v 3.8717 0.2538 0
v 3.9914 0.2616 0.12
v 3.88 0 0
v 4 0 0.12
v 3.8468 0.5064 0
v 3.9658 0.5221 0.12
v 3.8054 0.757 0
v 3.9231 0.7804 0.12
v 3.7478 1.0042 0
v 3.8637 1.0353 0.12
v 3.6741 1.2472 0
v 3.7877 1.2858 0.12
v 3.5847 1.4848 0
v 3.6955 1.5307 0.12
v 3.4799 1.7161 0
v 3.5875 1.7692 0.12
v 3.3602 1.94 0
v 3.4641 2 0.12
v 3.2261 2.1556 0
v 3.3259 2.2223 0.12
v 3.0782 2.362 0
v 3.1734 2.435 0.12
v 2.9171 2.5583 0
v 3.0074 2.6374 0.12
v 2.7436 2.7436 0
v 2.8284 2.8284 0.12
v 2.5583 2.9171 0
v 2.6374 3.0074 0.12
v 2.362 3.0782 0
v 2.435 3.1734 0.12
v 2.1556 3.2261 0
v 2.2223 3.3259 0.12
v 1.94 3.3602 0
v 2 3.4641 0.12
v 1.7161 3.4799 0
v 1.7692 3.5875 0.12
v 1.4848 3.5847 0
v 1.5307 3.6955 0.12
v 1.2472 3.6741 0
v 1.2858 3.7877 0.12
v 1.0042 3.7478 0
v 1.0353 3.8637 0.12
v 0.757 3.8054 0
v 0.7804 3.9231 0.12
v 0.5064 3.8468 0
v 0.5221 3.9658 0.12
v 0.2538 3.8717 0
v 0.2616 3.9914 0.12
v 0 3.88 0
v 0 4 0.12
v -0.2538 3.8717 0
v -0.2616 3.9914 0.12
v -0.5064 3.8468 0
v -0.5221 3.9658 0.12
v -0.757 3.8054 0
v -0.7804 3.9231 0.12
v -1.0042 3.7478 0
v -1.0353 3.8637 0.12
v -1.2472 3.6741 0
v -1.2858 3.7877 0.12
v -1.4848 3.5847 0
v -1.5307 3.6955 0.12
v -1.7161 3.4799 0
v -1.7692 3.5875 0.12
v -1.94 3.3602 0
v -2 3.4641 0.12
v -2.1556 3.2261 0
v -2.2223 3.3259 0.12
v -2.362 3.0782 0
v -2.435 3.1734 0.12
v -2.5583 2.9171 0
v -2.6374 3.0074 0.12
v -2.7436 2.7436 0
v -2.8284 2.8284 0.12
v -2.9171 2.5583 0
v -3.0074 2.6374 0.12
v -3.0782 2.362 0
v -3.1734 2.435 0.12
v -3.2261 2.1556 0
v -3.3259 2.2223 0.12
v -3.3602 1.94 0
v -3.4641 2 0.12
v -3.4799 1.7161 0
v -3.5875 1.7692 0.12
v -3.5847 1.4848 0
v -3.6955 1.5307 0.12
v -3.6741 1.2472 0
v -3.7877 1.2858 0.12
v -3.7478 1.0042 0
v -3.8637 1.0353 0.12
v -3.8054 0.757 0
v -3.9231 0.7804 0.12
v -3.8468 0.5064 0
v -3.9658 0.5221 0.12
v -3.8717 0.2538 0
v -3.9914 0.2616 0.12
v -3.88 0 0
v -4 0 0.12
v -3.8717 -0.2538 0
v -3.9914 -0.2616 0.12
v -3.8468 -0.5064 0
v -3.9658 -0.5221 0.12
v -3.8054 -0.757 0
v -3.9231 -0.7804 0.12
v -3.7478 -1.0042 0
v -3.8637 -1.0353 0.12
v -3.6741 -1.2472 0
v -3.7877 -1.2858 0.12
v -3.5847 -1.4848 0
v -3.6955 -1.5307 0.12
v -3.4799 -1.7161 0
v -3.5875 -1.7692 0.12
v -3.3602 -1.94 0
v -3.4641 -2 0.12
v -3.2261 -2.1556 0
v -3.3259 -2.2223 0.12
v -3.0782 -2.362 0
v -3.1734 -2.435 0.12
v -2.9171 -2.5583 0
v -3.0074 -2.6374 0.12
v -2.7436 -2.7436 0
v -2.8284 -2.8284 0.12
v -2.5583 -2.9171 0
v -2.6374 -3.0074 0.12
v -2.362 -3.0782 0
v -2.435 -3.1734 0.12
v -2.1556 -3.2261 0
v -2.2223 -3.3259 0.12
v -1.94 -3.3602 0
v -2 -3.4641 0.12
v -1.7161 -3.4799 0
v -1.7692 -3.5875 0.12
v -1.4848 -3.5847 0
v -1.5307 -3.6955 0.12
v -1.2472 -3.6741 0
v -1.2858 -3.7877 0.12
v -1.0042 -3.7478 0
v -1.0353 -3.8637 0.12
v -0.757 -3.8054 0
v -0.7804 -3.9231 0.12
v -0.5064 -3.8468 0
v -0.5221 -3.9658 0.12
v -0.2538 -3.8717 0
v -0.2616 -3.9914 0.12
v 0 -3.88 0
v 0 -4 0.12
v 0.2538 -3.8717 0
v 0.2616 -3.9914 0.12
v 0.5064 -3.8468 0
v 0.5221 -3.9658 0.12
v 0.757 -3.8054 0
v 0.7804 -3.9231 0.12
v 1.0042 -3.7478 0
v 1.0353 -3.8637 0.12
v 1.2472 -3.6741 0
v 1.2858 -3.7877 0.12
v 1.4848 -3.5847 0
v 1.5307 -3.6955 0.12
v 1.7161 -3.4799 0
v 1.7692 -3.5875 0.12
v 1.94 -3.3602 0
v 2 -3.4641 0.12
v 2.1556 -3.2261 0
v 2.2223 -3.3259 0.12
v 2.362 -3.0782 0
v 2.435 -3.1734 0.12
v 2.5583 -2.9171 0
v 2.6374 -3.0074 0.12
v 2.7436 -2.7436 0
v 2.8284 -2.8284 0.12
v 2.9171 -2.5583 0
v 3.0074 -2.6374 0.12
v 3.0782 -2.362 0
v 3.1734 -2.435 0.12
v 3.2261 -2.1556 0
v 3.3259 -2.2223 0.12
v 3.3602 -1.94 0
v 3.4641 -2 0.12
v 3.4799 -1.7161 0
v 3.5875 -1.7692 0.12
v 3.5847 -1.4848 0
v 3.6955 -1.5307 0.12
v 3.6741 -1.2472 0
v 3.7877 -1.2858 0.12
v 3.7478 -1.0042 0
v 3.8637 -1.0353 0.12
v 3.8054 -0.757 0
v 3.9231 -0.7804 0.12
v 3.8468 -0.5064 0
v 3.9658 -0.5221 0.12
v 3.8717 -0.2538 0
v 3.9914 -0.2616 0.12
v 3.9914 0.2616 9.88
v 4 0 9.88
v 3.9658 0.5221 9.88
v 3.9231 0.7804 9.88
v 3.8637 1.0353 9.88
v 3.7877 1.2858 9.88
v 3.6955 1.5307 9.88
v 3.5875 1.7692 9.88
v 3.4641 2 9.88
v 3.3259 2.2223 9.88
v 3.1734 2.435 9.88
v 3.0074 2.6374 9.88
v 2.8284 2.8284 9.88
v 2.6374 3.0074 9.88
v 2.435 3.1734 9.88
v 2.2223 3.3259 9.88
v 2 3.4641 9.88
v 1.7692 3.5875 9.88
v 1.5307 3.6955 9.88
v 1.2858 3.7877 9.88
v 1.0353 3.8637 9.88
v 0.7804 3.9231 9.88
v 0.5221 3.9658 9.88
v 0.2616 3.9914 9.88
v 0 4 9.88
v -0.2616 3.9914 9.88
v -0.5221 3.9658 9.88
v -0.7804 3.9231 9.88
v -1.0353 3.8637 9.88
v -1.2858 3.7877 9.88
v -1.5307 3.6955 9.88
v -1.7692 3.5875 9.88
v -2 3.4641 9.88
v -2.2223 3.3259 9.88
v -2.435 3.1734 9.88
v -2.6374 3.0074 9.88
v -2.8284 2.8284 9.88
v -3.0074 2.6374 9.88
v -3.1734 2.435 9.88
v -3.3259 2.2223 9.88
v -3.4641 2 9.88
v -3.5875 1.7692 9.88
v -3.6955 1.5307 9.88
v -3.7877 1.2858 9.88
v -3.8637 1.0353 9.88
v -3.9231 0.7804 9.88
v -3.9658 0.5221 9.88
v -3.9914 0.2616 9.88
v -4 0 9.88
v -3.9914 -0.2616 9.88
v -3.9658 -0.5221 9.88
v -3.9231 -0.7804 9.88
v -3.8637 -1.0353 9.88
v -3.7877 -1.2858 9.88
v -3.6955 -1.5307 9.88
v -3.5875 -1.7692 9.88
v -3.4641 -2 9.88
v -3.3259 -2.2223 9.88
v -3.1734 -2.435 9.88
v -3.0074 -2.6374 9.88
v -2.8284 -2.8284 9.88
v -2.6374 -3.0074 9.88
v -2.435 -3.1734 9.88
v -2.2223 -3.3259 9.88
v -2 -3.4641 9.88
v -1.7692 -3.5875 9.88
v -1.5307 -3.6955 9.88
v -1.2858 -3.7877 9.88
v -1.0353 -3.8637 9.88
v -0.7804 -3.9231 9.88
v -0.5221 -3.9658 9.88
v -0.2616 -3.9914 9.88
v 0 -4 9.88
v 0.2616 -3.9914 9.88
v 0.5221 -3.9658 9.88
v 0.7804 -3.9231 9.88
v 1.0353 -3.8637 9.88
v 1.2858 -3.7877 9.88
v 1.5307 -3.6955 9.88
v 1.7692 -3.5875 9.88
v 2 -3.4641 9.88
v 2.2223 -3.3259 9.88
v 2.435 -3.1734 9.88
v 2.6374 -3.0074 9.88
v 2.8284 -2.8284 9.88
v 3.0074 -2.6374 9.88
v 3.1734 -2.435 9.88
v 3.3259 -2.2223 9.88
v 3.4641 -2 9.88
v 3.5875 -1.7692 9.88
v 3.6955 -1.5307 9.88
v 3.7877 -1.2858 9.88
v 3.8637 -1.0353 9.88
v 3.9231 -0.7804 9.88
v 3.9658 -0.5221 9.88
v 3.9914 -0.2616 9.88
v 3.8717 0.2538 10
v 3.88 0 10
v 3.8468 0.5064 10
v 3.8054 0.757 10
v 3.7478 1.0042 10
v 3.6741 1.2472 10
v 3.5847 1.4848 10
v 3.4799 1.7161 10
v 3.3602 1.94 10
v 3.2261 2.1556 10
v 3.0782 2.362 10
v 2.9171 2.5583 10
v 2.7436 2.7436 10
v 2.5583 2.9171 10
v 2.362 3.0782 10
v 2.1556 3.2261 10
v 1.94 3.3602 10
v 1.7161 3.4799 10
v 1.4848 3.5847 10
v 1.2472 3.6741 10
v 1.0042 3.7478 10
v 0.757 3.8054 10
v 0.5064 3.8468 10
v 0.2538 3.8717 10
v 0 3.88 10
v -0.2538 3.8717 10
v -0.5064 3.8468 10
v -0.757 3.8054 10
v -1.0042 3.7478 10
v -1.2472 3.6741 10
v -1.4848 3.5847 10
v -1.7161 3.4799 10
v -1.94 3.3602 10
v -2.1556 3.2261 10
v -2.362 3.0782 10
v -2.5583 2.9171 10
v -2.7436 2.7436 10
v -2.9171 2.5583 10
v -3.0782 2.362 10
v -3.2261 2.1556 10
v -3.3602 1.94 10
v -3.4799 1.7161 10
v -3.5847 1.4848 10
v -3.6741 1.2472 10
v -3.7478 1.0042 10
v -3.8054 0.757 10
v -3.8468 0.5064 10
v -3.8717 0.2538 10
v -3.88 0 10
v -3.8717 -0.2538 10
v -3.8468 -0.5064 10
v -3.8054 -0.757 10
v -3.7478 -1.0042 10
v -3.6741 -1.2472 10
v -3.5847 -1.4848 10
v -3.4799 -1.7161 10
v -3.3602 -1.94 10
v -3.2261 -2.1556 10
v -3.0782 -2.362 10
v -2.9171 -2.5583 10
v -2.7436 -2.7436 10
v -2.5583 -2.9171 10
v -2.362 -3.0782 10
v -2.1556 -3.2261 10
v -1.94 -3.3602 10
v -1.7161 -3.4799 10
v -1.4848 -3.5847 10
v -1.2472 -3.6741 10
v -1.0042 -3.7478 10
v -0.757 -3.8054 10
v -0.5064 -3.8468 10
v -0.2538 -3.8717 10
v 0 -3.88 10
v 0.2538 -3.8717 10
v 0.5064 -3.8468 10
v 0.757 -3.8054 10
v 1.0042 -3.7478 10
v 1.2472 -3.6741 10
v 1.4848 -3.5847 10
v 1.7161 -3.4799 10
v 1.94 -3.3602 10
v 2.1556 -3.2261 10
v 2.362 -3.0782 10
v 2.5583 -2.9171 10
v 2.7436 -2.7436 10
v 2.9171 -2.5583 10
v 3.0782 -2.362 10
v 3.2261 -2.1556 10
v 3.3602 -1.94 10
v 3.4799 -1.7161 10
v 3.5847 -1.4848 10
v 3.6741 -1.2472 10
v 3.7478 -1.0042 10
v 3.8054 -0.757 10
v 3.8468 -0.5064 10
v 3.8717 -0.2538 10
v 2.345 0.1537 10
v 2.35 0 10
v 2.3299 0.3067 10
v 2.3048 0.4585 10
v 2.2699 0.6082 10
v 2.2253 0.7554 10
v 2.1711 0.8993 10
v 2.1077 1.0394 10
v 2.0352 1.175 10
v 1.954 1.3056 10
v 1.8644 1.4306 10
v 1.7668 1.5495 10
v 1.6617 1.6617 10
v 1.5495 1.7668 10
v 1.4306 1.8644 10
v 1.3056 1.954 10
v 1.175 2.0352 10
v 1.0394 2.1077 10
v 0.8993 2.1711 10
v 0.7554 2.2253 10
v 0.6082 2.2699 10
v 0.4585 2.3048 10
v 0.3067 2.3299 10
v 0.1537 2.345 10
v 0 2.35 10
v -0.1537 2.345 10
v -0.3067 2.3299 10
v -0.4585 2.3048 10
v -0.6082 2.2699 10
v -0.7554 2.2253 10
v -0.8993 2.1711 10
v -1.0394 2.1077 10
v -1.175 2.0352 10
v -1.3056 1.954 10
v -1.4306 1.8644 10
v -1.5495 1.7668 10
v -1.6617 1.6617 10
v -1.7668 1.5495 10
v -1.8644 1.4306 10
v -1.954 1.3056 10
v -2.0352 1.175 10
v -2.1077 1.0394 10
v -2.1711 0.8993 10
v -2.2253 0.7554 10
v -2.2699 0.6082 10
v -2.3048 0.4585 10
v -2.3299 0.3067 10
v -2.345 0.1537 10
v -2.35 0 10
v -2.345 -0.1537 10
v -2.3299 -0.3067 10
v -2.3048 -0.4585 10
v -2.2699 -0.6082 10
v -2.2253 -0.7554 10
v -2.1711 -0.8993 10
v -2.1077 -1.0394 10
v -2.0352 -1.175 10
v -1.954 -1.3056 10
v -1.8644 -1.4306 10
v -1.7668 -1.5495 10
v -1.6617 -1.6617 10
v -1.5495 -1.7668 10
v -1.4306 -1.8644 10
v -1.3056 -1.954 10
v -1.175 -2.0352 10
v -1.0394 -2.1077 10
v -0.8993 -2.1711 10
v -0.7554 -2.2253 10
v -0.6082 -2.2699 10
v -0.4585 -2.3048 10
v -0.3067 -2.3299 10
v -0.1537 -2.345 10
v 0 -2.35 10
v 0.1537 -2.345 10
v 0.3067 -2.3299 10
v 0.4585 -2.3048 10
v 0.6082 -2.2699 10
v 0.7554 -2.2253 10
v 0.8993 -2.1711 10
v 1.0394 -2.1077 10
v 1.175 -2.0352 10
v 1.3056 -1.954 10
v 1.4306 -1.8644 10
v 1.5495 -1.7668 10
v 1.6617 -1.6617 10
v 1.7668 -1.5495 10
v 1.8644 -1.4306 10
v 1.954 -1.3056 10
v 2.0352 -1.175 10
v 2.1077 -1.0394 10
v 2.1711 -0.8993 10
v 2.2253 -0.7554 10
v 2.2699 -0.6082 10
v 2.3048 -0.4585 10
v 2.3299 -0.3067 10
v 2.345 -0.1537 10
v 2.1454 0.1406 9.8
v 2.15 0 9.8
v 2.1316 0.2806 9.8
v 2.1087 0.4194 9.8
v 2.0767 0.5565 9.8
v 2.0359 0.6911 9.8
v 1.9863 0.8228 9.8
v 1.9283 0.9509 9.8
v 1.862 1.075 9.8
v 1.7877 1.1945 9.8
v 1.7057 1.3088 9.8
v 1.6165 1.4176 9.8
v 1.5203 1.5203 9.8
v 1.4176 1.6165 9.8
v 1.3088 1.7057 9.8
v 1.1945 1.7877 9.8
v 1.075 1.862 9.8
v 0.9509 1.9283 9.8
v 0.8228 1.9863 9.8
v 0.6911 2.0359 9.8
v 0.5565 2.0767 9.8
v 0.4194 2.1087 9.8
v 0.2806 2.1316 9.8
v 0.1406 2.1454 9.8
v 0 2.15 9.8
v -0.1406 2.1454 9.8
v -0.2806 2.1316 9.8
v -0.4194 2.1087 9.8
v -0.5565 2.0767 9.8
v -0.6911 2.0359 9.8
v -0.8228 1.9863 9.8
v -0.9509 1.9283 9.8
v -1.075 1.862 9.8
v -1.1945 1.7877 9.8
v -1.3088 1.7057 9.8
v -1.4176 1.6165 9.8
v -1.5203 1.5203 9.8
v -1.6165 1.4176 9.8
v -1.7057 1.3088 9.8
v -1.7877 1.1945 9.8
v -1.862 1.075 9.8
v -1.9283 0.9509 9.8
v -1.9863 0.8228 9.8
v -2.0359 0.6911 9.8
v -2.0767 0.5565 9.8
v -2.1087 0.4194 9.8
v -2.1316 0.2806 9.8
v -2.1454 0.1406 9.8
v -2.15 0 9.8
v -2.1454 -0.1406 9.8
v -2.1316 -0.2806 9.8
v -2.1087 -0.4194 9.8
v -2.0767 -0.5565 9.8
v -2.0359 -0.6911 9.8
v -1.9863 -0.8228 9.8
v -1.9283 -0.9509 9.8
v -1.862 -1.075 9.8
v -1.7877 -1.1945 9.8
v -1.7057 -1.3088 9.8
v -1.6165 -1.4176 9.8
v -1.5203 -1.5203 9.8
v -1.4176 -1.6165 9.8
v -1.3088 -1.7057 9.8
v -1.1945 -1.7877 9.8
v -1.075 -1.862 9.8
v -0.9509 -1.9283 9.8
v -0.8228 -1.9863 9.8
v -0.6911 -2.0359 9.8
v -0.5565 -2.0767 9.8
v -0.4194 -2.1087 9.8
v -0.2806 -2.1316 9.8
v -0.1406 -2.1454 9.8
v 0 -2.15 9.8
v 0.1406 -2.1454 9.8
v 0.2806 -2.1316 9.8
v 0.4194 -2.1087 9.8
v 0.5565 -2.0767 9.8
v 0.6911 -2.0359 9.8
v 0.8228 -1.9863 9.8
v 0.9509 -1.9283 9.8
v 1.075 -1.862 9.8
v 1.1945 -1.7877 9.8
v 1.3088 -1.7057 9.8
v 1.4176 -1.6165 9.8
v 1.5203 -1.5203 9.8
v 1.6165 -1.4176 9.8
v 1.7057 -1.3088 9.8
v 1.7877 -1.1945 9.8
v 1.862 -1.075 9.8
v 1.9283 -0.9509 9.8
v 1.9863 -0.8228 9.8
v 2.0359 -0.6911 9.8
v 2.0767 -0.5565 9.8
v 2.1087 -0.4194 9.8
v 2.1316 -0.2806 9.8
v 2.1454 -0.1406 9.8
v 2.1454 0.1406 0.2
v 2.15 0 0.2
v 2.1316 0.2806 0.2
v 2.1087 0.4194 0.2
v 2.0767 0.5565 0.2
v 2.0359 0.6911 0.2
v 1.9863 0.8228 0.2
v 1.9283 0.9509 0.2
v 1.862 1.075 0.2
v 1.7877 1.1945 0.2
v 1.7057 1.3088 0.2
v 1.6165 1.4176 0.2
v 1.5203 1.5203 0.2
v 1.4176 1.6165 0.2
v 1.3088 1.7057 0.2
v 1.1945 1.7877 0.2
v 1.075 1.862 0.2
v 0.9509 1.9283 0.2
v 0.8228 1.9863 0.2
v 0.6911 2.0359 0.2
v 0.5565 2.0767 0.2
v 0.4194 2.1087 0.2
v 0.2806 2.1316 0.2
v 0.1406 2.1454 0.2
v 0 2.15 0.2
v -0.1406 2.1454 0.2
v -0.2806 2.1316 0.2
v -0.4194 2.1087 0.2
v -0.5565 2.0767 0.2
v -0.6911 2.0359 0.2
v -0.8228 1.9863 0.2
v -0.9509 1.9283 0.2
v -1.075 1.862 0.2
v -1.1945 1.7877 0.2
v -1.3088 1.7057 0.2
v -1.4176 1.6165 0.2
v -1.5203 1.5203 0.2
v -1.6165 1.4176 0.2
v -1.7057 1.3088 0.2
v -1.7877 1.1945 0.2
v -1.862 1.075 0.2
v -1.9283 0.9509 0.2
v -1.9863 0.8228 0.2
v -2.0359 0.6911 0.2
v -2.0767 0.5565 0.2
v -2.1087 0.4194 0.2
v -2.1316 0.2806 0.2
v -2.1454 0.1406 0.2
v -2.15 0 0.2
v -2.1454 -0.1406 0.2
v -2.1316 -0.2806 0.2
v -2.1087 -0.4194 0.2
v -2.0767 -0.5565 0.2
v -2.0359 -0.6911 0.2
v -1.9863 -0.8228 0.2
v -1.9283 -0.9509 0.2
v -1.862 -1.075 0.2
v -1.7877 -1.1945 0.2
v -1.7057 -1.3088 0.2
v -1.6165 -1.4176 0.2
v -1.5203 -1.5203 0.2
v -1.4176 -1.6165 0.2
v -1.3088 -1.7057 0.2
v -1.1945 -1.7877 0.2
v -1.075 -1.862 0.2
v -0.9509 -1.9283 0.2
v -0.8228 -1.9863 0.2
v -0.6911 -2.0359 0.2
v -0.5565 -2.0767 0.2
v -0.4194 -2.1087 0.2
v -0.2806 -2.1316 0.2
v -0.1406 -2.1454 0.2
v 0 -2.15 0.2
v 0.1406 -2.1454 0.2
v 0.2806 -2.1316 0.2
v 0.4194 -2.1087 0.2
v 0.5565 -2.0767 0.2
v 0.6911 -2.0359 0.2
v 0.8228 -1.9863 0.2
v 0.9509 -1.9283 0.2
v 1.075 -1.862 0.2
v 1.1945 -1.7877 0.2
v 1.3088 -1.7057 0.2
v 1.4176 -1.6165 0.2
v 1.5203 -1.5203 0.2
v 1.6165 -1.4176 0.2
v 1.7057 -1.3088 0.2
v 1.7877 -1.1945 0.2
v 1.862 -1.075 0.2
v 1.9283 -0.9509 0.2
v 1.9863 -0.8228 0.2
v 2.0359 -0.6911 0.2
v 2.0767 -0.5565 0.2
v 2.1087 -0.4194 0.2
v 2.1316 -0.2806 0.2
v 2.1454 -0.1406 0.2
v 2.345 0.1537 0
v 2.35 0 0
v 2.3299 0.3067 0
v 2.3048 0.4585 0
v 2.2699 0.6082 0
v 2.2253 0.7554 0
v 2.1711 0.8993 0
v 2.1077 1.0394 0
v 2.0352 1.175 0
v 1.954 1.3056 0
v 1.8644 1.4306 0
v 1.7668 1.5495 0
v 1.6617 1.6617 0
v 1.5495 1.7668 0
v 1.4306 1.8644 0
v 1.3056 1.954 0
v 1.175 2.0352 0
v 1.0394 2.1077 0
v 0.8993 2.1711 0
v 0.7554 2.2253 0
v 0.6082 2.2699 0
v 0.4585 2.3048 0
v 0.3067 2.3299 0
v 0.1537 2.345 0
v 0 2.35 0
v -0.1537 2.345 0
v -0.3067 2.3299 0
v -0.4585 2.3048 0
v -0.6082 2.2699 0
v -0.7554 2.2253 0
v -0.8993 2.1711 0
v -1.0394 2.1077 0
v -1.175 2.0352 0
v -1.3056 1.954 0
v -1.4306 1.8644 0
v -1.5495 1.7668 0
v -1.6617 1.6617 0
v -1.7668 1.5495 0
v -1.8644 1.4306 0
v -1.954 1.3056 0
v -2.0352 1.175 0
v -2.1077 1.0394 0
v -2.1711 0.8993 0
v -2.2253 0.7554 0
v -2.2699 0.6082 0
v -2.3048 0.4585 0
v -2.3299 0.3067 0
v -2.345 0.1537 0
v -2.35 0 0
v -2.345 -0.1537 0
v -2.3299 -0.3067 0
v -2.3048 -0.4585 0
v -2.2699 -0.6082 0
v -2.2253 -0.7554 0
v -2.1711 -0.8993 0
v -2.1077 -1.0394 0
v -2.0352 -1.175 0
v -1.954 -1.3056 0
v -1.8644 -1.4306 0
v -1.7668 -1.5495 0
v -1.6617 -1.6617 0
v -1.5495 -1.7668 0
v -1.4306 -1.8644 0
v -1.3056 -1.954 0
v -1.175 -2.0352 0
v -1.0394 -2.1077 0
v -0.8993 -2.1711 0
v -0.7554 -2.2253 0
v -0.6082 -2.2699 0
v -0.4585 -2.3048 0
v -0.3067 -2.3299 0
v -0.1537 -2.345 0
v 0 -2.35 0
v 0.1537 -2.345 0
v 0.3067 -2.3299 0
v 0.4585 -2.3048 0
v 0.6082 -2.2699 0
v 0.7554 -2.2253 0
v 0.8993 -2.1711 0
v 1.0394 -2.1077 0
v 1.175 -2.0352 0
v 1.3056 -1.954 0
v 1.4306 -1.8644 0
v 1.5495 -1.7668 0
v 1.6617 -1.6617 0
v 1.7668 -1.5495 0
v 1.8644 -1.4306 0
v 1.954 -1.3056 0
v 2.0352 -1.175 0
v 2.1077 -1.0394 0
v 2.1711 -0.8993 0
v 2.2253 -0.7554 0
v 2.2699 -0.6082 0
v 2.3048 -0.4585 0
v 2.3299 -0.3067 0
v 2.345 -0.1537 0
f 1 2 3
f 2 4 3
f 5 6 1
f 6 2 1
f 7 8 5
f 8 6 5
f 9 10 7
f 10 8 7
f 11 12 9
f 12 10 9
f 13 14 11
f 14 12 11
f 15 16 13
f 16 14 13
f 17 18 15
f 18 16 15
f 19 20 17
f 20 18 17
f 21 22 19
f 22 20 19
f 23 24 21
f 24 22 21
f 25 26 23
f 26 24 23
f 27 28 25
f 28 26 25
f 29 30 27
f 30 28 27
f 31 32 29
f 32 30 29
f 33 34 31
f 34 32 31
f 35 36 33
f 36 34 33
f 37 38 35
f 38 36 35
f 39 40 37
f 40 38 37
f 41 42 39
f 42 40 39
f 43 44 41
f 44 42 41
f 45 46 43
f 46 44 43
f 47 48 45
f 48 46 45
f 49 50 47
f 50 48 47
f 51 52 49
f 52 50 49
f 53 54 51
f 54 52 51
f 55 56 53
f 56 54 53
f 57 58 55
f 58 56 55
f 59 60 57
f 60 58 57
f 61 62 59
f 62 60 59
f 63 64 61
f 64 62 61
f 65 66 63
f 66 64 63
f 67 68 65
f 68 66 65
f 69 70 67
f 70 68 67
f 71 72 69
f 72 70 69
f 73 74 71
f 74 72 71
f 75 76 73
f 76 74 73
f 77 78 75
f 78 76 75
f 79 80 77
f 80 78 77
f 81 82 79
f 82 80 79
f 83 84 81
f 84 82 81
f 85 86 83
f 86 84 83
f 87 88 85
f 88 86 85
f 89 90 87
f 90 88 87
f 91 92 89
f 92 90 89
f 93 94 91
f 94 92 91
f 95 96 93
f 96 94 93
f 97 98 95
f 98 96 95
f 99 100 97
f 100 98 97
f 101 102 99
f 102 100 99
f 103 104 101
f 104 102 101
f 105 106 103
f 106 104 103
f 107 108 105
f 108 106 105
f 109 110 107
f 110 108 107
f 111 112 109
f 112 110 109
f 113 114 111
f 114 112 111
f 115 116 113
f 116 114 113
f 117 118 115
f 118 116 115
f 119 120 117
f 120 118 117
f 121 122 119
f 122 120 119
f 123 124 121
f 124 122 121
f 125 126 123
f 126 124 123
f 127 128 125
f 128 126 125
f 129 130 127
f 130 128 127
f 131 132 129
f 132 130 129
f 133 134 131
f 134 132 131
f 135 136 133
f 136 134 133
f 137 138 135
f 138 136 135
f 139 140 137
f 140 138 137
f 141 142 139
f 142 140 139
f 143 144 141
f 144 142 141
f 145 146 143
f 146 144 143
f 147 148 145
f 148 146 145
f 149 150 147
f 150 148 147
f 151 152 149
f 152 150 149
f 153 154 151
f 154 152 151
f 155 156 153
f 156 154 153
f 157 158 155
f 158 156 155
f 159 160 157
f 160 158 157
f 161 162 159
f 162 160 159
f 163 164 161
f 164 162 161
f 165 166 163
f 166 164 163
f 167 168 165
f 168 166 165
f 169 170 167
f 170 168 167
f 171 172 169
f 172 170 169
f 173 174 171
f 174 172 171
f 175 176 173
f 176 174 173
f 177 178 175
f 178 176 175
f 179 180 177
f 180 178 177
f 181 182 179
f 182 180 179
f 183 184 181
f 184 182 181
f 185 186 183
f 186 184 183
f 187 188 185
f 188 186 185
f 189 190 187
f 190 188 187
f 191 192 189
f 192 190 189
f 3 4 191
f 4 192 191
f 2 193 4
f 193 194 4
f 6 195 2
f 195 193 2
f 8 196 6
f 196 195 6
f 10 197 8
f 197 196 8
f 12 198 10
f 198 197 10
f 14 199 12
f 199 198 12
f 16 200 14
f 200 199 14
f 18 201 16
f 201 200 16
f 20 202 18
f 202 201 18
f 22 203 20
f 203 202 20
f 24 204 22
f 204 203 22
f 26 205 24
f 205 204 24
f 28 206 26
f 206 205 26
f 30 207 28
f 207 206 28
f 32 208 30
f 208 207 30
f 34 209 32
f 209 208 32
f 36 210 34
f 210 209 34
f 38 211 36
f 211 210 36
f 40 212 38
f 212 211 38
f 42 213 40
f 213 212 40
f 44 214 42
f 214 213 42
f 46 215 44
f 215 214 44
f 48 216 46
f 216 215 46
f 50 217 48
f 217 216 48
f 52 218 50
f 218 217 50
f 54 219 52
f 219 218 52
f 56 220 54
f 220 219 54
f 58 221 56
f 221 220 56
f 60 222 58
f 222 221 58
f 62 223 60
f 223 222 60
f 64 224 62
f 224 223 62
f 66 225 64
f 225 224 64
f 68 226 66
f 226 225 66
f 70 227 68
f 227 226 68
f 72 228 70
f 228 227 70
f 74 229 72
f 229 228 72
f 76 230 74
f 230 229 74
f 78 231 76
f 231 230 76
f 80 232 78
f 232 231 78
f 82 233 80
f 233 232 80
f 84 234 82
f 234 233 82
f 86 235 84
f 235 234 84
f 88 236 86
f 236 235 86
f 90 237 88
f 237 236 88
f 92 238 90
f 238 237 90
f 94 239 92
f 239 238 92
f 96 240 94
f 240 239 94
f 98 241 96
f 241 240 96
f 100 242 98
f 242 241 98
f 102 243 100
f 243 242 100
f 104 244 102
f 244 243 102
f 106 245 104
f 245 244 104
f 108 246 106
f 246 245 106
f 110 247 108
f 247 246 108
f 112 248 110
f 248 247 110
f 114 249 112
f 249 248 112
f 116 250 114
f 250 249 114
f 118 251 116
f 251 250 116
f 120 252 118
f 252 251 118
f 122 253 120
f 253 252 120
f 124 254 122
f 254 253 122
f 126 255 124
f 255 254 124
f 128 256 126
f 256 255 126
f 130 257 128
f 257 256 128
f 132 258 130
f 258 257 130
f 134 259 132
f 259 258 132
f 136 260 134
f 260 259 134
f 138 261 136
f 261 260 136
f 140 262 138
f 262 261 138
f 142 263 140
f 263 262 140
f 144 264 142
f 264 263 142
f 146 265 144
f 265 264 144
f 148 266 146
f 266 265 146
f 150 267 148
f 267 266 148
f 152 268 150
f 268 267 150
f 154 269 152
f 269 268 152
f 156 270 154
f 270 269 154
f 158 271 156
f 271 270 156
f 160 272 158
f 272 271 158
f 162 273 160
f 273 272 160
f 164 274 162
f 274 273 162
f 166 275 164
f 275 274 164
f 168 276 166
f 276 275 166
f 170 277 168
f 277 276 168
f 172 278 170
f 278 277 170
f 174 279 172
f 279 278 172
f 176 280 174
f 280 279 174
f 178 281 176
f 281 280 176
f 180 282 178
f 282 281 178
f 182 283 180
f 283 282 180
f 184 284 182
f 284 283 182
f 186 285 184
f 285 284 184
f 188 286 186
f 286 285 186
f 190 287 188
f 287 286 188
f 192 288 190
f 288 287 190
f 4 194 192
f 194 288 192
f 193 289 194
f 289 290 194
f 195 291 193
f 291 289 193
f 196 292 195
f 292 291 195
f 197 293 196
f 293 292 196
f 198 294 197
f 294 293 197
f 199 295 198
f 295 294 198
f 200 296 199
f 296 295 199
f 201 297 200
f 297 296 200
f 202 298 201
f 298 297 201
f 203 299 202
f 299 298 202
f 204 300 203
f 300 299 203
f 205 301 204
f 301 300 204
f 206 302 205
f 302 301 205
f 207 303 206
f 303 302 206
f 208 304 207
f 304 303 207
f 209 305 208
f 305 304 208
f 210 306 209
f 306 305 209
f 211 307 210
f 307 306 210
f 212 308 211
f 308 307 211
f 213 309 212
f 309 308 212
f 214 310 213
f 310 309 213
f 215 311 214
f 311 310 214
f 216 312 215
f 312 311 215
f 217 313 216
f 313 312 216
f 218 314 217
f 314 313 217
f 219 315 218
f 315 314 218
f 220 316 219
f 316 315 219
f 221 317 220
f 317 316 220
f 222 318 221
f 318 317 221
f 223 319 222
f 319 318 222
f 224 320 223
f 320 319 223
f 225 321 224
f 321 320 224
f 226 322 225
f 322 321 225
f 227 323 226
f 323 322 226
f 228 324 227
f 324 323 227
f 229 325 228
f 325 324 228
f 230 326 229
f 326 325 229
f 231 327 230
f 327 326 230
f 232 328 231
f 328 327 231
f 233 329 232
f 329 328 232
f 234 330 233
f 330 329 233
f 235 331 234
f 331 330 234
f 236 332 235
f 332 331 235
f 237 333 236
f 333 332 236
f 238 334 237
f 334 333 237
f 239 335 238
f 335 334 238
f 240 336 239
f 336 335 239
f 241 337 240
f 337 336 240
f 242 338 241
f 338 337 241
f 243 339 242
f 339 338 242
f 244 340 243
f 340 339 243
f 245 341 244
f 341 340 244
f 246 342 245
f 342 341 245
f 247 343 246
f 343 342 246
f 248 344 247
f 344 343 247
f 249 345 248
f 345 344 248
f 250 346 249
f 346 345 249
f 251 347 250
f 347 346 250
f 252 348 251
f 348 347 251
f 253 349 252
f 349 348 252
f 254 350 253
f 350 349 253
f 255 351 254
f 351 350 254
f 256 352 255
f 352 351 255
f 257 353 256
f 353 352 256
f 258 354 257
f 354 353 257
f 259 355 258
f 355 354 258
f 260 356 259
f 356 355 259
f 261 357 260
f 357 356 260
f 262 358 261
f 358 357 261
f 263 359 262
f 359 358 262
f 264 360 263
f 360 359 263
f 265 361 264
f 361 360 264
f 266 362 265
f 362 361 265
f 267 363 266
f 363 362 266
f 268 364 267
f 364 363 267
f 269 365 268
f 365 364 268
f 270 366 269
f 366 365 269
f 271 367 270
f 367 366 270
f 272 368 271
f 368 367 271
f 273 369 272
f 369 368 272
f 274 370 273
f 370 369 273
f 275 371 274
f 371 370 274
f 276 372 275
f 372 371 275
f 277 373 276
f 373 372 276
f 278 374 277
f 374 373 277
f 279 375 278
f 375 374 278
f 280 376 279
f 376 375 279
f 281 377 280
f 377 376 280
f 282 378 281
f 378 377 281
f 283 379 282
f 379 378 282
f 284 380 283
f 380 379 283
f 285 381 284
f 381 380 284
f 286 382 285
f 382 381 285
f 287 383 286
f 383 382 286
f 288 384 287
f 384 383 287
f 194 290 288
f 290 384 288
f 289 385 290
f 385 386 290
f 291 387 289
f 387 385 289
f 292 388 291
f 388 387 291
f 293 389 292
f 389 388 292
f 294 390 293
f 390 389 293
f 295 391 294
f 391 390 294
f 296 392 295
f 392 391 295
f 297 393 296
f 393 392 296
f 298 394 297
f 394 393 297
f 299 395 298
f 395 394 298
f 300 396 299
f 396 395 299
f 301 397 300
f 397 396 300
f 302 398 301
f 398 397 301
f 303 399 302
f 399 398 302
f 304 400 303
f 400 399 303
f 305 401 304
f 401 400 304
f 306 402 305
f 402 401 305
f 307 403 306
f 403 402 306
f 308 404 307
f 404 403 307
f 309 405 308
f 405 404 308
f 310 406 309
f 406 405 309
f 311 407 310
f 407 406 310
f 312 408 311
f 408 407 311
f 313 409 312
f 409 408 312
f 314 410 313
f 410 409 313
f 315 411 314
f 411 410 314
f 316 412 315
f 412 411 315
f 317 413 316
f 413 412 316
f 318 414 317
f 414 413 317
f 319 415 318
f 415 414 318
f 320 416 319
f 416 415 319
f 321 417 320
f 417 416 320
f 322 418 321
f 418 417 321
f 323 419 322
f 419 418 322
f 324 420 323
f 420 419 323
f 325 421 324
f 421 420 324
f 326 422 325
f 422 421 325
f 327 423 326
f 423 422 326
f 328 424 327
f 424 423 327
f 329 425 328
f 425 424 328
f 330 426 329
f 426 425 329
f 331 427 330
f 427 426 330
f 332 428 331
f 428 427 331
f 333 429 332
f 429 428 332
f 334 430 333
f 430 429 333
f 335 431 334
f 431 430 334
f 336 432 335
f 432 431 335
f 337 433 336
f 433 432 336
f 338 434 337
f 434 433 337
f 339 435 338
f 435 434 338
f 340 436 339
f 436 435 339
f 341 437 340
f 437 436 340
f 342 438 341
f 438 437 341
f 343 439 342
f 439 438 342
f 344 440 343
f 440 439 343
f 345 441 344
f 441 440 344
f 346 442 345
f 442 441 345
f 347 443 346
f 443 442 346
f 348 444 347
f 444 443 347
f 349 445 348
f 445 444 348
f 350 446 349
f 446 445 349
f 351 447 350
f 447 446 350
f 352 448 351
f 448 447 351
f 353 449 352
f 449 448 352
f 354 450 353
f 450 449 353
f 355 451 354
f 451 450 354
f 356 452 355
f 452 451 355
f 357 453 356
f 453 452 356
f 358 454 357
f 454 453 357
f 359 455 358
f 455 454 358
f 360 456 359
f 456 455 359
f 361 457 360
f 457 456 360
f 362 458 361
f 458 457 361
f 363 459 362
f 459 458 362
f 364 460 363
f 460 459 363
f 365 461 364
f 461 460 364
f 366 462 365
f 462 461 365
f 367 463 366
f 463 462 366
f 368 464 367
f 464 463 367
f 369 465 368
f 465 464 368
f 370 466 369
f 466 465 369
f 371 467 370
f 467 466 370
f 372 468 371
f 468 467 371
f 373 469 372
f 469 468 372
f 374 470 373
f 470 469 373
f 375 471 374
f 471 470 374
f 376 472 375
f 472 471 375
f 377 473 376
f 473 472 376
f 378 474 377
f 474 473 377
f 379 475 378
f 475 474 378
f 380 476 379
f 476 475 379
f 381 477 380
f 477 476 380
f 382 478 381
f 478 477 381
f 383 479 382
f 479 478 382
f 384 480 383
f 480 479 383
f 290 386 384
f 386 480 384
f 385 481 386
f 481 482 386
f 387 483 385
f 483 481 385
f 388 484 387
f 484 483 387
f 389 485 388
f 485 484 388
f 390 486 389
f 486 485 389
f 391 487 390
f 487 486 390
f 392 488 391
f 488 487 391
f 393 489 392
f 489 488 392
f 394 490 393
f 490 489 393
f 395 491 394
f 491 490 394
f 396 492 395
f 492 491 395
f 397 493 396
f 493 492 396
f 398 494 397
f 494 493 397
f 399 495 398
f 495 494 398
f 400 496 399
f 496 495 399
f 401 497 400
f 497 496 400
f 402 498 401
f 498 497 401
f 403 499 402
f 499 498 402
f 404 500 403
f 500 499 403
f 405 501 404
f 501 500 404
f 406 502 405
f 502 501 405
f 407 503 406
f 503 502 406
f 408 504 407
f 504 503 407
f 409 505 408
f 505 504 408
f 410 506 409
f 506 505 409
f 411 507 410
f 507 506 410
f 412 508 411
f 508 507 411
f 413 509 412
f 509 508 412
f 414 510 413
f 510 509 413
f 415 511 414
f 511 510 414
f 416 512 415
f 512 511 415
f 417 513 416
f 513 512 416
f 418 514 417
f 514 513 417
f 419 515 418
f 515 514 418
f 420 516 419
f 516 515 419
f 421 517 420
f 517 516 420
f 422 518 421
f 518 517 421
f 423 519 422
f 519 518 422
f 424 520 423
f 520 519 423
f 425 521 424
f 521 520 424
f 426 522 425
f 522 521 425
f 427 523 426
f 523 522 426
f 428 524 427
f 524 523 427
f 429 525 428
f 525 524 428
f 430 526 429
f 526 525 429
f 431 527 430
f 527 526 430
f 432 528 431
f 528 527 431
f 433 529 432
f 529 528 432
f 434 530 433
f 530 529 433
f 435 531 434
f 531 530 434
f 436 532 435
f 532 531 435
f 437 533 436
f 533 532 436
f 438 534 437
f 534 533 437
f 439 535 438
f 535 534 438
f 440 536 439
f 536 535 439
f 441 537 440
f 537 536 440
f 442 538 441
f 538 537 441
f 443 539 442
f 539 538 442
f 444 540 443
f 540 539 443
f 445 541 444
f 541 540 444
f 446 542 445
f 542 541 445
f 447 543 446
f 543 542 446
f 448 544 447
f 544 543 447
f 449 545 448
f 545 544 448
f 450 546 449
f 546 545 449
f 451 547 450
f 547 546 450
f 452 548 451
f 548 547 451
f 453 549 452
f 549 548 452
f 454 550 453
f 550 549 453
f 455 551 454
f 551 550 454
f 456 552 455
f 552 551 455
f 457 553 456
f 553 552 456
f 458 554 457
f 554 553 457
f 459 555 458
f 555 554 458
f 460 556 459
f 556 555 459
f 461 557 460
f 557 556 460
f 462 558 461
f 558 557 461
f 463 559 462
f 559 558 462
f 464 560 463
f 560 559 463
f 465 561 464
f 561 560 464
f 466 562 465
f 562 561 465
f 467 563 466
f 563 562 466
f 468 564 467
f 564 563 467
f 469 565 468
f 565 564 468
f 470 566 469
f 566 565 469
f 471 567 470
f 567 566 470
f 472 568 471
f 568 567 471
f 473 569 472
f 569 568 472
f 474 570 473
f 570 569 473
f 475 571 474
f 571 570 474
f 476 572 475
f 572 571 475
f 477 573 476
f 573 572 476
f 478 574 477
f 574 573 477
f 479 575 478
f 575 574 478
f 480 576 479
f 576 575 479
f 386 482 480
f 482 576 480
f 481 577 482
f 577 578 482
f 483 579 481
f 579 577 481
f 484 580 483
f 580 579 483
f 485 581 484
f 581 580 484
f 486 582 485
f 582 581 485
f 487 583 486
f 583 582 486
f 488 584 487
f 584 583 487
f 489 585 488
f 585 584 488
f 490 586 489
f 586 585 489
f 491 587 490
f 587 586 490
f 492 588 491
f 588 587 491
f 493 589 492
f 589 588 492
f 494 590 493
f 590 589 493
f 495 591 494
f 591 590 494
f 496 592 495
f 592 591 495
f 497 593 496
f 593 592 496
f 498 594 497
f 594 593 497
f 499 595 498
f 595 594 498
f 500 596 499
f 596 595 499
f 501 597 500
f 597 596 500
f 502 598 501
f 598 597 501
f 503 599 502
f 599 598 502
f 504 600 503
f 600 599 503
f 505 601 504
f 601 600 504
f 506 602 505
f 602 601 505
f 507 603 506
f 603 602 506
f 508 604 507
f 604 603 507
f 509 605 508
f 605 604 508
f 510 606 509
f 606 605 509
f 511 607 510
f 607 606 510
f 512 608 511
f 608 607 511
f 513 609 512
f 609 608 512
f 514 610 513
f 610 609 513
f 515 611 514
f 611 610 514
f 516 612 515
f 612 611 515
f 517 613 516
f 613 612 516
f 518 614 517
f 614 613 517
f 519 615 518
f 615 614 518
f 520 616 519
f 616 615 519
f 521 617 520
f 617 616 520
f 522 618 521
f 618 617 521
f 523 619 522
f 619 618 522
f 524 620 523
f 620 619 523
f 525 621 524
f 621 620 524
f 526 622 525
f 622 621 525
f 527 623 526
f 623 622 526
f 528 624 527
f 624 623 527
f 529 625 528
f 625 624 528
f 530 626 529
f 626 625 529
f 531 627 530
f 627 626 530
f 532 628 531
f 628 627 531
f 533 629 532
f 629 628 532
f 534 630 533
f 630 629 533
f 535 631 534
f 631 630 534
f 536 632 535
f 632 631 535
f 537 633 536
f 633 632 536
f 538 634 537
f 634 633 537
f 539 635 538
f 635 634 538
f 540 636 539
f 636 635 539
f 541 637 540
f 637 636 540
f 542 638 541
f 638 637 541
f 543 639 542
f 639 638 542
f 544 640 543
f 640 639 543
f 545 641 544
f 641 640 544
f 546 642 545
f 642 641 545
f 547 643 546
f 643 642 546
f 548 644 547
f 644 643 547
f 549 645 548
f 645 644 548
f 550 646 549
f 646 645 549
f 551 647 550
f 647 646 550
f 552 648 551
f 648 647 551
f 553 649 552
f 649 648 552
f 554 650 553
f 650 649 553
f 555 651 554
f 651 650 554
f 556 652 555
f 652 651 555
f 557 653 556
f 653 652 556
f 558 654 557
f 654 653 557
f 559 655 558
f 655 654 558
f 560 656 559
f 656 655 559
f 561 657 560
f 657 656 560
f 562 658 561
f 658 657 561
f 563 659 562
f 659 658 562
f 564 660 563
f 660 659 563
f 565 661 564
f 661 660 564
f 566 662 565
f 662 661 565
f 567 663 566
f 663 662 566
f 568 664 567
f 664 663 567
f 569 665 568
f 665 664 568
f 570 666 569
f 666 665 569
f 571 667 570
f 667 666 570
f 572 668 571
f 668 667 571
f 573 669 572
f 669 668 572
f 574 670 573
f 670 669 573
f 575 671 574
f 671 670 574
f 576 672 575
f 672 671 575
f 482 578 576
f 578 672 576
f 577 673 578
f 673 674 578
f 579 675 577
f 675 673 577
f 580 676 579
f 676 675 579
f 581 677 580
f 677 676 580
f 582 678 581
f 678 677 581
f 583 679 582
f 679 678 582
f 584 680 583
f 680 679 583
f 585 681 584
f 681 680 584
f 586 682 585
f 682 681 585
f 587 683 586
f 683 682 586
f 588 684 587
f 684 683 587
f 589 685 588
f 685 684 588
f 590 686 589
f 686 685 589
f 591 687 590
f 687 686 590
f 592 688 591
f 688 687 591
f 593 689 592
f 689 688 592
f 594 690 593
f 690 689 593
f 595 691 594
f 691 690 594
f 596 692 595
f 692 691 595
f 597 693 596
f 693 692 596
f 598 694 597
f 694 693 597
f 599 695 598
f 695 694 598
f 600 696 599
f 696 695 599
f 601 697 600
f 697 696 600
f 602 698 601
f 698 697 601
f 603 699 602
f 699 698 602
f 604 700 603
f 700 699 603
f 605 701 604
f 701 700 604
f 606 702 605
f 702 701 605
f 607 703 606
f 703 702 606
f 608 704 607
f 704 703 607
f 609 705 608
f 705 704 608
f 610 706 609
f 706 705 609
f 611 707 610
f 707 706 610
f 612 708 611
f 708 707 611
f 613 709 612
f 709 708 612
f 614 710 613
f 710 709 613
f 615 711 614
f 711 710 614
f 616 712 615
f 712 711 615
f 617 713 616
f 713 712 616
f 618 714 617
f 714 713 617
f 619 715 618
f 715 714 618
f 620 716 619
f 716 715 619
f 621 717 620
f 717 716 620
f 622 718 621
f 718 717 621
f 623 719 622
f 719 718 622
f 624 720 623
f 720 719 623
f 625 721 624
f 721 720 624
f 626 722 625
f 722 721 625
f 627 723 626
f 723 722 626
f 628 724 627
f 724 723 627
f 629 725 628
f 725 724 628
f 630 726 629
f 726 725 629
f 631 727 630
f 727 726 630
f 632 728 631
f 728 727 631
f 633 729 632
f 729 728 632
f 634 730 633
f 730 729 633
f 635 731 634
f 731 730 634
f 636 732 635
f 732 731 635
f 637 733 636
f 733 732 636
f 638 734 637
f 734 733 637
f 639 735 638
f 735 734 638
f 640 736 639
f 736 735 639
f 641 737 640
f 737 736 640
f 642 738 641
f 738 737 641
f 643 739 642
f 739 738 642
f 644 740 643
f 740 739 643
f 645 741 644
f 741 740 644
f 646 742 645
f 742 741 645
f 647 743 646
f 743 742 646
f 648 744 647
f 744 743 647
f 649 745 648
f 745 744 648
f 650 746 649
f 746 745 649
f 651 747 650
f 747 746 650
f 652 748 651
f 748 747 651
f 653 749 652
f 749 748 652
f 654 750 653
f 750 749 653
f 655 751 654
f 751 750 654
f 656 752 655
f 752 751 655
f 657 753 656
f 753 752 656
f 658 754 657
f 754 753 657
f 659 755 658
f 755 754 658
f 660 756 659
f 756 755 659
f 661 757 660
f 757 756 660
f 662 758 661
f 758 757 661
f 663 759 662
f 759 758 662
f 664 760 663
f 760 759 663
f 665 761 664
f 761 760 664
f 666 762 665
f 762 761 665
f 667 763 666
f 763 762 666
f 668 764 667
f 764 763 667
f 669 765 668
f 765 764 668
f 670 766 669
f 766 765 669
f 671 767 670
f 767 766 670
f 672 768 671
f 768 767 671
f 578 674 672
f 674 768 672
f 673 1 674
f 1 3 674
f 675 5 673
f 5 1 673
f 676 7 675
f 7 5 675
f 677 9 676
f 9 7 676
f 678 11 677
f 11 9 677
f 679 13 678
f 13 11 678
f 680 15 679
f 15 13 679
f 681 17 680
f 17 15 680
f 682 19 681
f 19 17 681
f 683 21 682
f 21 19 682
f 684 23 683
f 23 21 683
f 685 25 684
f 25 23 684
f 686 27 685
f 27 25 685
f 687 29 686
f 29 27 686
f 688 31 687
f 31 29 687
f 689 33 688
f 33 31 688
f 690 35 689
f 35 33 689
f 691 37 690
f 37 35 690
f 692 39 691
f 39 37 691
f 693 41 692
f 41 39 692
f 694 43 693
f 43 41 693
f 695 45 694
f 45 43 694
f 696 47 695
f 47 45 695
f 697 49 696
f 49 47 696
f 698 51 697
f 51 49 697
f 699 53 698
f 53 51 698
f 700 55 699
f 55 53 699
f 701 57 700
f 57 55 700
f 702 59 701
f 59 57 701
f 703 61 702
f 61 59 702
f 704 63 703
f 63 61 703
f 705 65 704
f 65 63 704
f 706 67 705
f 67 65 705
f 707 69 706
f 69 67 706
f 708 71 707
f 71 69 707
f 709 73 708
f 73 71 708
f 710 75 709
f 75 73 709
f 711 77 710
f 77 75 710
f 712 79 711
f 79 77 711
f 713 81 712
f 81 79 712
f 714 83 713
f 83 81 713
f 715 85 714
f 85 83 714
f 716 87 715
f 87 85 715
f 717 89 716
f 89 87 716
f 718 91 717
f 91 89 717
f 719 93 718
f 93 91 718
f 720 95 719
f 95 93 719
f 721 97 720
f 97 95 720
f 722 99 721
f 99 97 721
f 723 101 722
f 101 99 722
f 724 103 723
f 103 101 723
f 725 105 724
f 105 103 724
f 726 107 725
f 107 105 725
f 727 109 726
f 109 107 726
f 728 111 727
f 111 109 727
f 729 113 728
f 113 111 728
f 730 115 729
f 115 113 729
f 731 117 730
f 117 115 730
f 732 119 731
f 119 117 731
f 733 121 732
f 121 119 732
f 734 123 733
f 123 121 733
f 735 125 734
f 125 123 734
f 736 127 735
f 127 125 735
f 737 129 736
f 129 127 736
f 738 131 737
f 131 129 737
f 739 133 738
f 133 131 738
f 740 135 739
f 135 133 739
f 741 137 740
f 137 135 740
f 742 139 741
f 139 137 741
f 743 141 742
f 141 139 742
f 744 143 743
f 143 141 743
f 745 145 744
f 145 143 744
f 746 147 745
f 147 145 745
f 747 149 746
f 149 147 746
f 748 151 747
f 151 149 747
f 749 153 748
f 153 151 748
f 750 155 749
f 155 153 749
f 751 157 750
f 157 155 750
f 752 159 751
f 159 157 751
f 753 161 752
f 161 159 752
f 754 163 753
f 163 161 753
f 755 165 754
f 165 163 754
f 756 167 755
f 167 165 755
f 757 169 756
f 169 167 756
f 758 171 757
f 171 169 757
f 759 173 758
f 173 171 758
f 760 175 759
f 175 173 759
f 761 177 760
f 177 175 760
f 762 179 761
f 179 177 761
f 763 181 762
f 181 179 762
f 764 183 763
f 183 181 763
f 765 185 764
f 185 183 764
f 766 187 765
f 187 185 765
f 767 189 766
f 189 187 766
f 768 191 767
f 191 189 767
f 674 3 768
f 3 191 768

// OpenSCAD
// OOMP generic catalogue model; units: mm.
// Stud length is additional to body depth. Tapping depths are model assumptions.
variant = "full"; // [full, display]
family = "spacer";
connection_type = "plain";
depth_mm = 10;
stud_length_mm = 0;
tapped_depth_mm = 0;
bore_mm = 4.3;
outer_diameter_mm = 8;
across_flats_mm = 6;
thread_nominal_diameter_mm = 3;
thread_pitch_mm = 0.5;
edge_chamfer_mm = 0.12;
mouth_chamfer_mm = 0.2;
angular_segments = 96;
samples_per_pitch = 16;

// Boundary travels up the outside, then down any tapped/plain bore.
// Equal-height rings at shoulders form the annular shoulder faces.
n = angular_segments;
threaded = family == "standoff";
has_stud = connection_type == "stud_to_tapped" || connection_type == "stud_to_stud";
two_studs = connection_type == "stud_to_stud";
through = !threaded || connection_type == "tapped_to_tapped";
pitch = thread_pitch_mm;
diameter = threaded ? thread_nominal_diameter_mm : bore_mm;
minor = diameter - 5*sqrt(3)*pitch/8;
transition = mouth_chamfer_mm + (threaded ? 5*sqrt(3)*pitch/16 : 0);
tip_chamfer = mouth_chamfer_mm + 17*sqrt(3)*pitch/48;
function sorted(v) = len(v)<=1 ? v : let(p=v[0])
    concat(sorted([for(x=v) if(x<p-1e-8) x]), [p], sorted([for(x=v) if(x>p+1e-8) x]));
function reverse(v) = [for(i=[len(v)-1:-1:0]) v[i]];
function theta(i) = i*360/n;
function fract(x) = x-floor(x);
function phase_distance(i,z) = abs(fract(z/pitch-theta(i)/360+0.5)-0.5);
function thread_r(i,z) = minor/2 + min(5*sqrt(3)*pitch/16,
    max(0,(phase_distance(i,z)-0.125)*pitch*sqrt(3)));
function stud_r(i,z,tip) = min(diameter/2 - (variant=="full" ?
    min(17*sqrt(3)*pitch/48,max(0,(phase_distance(i,z)-0.0625)*pitch*sqrt(3))) : 0),
    diameter/2-tip_chamfer+abs(z-tip));
function body_r(i,z) = (threaded ? across_flats_mm/2/cos(theta(i)%60-30) : outer_diameter_mm/2)
    - max(0,edge_chamfer_mm-min(z,depth_mm-z));
function bore_r(i,z) = max(threaded ? (variant=="full" ? thread_r(i,z) : minor/2) : diameter/2,
    diameter/2+mouth_chamfer_mm-(through ? min(z,depth_mm-z) : depth_mm-z));
function stud_z(a,b,tip) = let(count=variant=="full" ? ceil(stud_length_mm/pitch*samples_per_pitch) : 1)
    sorted(concat([for(i=[0:count]) a+(b-a)*i/count], [tip==a ? tip+tip_chamfer : tip-tip_chamfer]));
body_z = sorted([0,edge_chamfer_mm,depth_mm-edge_chamfer_mm,depth_mm]);
low = through ? 0 : depth_mm-tapped_depth_mm;
count = threaded && variant=="full" ? ceil((depth_mm-low)/pitch*samples_per_pitch) : 1;
bore_z = two_studs ? [] : reverse(sorted(concat(
    [for(i=[0:count]) low+(depth_mm-low)*i/count],
    [depth_mm-mouth_chamfer_mm,depth_mm-transition],
    through ? [mouth_chamfer_mm,transition] : [])));
// Ring descriptors: [height, kind, tip]. Kind: 0 body, 1 stud, 2 bore.
rings = concat(
    has_stud ? [for(z=stud_z(-stud_length_mm,0,-stud_length_mm)) [z,1,-stud_length_mm]] : [],
    [for(z=body_z) [z,0,0]],
    two_studs ? [for(z=stud_z(depth_mm,depth_mm+stud_length_mm,depth_mm+stud_length_mm)) [z,1,depth_mm+stud_length_mm]] : [],
    [for(z=bore_z) [z,2,0]]);
function radius(i,ring) = ring[1]==0 ? body_r(i,ring[0]) :
    ring[1]==1 ? stud_r(i,ring[0],ring[2]) : bore_r(i,ring[0]);
points = concat([for(ring=rings) for(i=[0:n-1])
    [radius(i,ring)*cos(theta(i)),radius(i,ring)*sin(theta(i)),ring[0]]],
    through ? [] : [[0,0,rings[0][0]],[0,0,rings[len(rings)-1][0]]]);
center = len(rings)*n;
last = (len(rings)-1)*n;
// OpenSCAD winding is opposite to STL winding.
faces = concat(
    [for(j=[0:len(rings)-(through ? 1 : 2)]) for(i=[0:n-1]) each
        let(a=j*n+i,b=j*n+(i+1)%n,c=((j+1)%len(rings))*n+(i+1)%n,d=((j+1)%len(rings))*n+i)
        [[a,c,b],[a,d,c]]],
    through ? [] : [for(i=[0:n-1]) each let(k=(i+1)%n)
        [[center,i,k],[center+1,last+k,last+i]]]);
assert(family=="spacer" || family=="standoff");
assert(!threaded || connection_type=="tapped_to_tapped" || has_stud);
assert(depth_mm>0 && diameter>0 && pitch>0);
assert(variant=="full" || variant=="display");
assert(n>=24 && n%12==0 && samples_per_pitch>=8);
assert(mouth_chamfer_mm>0 && mouth_chamfer_mm<depth_mm/2);
assert(edge_chamfer_mm>=0 && edge_chamfer_mm<depth_mm/2);
assert(diameter+4*max(mouth_chamfer_mm,edge_chamfer_mm) < (threaded ? across_flats_mm : outer_diameter_mm));
assert(!has_stud || stud_length_mm>2*mouth_chamfer_mm);
assert(!through || !threaded || 2*transition<depth_mm);
assert(connection_type!="stud_to_tapped" || (tapped_depth_mm>transition && tapped_depth_mm<depth_mm));
color([0.86,0.85,0.81]) polyhedron(points=points,faces=faces,convexity=20);
